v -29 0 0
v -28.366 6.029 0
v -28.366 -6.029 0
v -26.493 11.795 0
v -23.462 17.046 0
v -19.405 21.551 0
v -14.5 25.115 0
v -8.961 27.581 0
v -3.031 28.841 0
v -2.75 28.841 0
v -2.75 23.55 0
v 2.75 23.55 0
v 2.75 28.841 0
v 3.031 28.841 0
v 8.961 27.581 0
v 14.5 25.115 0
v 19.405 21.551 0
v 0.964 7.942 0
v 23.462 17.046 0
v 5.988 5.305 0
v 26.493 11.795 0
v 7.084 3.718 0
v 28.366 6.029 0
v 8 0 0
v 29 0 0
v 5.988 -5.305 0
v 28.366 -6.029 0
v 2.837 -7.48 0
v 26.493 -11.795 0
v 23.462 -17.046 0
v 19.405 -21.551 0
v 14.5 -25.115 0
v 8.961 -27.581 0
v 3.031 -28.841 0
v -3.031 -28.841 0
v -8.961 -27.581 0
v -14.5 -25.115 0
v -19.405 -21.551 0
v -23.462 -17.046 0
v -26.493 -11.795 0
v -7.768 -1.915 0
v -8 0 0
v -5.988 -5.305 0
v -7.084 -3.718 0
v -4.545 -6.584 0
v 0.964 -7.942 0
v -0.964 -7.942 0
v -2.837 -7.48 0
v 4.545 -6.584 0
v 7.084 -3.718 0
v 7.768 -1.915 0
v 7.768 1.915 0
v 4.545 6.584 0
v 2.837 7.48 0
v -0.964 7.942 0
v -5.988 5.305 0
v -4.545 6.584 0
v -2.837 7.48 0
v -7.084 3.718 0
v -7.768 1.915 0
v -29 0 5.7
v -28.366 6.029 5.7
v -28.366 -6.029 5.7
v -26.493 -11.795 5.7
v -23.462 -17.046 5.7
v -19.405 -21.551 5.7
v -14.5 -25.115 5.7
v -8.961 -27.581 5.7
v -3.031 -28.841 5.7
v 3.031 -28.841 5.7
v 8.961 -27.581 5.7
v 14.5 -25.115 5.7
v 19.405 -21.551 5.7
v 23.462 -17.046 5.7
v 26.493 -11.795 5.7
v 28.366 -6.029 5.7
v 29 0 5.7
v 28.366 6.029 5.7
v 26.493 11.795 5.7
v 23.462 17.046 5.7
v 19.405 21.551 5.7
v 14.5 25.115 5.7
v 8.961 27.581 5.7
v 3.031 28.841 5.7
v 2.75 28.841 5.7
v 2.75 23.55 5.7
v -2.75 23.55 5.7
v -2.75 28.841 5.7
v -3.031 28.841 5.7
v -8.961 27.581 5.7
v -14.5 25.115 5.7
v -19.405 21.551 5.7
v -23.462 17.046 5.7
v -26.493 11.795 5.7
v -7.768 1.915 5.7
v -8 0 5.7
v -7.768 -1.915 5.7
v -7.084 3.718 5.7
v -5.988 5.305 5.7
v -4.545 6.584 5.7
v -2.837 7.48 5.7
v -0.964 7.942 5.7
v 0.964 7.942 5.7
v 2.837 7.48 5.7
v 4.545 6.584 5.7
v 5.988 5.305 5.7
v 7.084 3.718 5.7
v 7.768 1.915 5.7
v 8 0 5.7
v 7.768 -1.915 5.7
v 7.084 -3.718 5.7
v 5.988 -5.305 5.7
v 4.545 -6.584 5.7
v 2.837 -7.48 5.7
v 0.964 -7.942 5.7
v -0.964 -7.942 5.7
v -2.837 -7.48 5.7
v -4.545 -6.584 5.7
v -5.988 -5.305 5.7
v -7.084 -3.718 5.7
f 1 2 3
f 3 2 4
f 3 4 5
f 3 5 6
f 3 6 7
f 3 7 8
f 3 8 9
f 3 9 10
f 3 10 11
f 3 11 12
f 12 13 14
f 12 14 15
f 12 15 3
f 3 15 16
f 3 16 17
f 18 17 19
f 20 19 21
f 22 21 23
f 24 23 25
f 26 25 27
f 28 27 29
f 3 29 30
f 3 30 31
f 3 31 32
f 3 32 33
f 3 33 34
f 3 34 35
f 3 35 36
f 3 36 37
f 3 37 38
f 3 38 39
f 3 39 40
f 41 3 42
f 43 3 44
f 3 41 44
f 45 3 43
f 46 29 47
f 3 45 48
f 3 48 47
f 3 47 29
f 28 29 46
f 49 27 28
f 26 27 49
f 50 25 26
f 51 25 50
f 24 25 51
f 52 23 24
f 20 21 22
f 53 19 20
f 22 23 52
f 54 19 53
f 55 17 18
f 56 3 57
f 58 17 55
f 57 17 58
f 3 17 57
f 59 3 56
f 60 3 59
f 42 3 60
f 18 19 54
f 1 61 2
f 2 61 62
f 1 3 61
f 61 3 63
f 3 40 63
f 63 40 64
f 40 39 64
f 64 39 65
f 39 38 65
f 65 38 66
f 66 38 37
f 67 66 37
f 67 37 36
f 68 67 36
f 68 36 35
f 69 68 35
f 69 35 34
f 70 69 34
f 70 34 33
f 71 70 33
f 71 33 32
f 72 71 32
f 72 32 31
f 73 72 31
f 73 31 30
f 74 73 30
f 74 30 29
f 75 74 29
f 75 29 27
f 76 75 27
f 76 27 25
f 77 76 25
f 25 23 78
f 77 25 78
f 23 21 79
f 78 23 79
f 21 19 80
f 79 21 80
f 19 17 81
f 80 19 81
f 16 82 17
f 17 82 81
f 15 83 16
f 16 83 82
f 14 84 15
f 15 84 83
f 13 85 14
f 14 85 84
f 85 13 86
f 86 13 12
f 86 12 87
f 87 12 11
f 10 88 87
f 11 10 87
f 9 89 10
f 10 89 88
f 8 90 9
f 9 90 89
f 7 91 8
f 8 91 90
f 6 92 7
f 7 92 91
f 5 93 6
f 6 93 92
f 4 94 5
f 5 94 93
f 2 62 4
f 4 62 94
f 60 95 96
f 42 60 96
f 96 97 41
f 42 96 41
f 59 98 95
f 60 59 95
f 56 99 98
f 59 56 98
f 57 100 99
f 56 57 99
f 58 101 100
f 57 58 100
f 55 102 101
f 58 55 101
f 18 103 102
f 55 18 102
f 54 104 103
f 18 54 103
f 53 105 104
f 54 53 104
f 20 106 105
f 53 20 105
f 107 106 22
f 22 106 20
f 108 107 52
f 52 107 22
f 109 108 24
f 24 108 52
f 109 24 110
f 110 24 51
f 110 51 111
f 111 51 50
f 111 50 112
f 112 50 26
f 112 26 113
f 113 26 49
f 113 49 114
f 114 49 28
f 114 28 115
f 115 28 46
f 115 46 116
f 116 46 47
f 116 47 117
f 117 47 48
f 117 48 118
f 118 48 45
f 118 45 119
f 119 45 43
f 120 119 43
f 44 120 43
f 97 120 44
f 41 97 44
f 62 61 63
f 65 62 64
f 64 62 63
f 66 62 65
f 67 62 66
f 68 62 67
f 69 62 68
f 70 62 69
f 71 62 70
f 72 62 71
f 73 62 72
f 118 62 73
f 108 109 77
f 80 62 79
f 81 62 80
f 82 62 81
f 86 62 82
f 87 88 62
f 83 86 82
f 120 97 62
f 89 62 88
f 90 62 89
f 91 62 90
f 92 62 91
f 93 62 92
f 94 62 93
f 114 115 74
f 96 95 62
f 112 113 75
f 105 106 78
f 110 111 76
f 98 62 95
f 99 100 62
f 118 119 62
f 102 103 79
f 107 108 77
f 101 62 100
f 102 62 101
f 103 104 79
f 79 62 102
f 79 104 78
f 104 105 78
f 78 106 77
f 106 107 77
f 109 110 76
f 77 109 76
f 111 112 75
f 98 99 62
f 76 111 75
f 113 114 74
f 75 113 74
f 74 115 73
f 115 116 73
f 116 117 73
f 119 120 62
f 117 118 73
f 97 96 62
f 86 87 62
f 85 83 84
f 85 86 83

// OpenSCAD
// file: settingsLenghts.scad
//Ancho de la pared
pared  = 2;
//Radio del centro hueco
radioC = 11;
//Alto de la capa de apertura
aperH = 5.5;
//Ancho de la apertura
aperW = 5+1.1;//Ancho mas holgura
//Ancho del lente macro
macroW = 9.3;
//Profundidad del macro
macroH = 3;
//Profundidad parte de atras y delante
profDelante = 6;
profAtras = 6;
//Ceja entre uniones de cilindros
cejaH = 6;
guiaParedW = 2;
tmpHolg = 1.8;


//Correcc

//
//CÁMARA
camP = 3;//Grueso de la pared del presente modelo
camW = 105;//Ancho de la cámara
camH = 61;//Alto de la cámara
camD = 23.5;//Profundidad de la cámara
camHlg = 6;//Holgura que se deja para los tornillos
camLW = 57/2;//Radio del exterior del lente
torW  = 2;//Radio

//
//Ancho de tubo principal (grande)
mcW = 32;//radio
mcH = 28;

//Dimensiones del difractador
diffW = 51;//Alto y Ancho
diffD=1;//Profundidad del difractador
diffWinW=36;//Ancho de la ventana de difracción
diffWinH=24;//Alto de la ventana de difracción

//
//Adquisición de luz
luzHBig = 10; //donde va el tornillo
luzWBig = 28; //27:diametro donde va el tornillo
luzHBigT = 4; //alto del tornillo
luzWBigT = 6; //6: ancho del tornillo
luzHRosca = 7; //donde va la rosca
luzWRosca = 23; //22:diametro de donde va la rosca



//Cuadro guia para que no se mueva
guiaH = cejaH;
guiaW = 3;



module creaPared(h){
	difference(){
		//Pone el cilindro principal
		cylinder(r=mcW,h);

		//Le quita el contorno exterior
		translate([0,0,-0.1])
		cylinder(r=mcW-pared,h+0.2);
	}
}
module creaGuiaTornilloCentrada(){
	translate([-luzWBigT/2,-luzWBigT/2,0])
	cube([luzWBigT,luzWBigT,luzHBig-1+0.2]);
}
module creaGuiaTornilloCentradaArea(){
	tmpW = luzWBigT + pared;
	tmpH = luzHBig  + pared;
	translate([-tmpW/2,-tmpW/2,0])
	cube([tmpW,tmpW,tmpH]);
}
module creaGuia(h){
	//Pone el circulo soporte
	difference(){
		cylinder(r=mcW,h);
		translate([0,0,-0.1])
		cylinder(r=mcW-pared,h+0.2);
	}
	//Pone la guia1
	translate([0,mcW-pared-(guiaW/2)+0.4,0])
	creaGuiaCentrada(h);
}
module creaGuiaHembra(h){
	//Pone el circulo soporte
	tmpW = mcW-guiaW;	
	creaPared(sopH);
	sopH = 1.35;
	
	//Pone la pared de la guia
	difference(){
		cylinder(r=(mcW-pared),sopH+h);
		translate([0,0,-0.1])
		cylinder(r=(mcW-pared-guiaParedW),sopH+h+0.2);
		//Pone la guia
		translate([-(guiaW/3),tmpW,sopH])
		creaGuiaCentrada(sopH+h+0.2);
		translate([(guiaW/3),tmpW,sopH])
		creaGuiaCentrada(sopH+h+0.2);
	}
}
module creaGuiaCentrada(h){
	translate([-guiaW/2,-guiaW/2,0])
	cube([guiaW,guiaW,h]);
}
// main file
include <settingsLenghts.scad>

h = cejaH-0.5;
w = guiaW+2.5;


/////////////////////////////////////
difference(){
	//Área grande
	cylinder(r=mcW-pared-1,cejaH-0.3);

	translate([0,mcW-pared-pared-1.7,-0.1])
	translate([-w/2,-w/2,-0.1])
	cube([w,w,h+1]);

	translate([0,0,-0.1])
	cylinder(r=8,cejaH+0.2);
	
}
